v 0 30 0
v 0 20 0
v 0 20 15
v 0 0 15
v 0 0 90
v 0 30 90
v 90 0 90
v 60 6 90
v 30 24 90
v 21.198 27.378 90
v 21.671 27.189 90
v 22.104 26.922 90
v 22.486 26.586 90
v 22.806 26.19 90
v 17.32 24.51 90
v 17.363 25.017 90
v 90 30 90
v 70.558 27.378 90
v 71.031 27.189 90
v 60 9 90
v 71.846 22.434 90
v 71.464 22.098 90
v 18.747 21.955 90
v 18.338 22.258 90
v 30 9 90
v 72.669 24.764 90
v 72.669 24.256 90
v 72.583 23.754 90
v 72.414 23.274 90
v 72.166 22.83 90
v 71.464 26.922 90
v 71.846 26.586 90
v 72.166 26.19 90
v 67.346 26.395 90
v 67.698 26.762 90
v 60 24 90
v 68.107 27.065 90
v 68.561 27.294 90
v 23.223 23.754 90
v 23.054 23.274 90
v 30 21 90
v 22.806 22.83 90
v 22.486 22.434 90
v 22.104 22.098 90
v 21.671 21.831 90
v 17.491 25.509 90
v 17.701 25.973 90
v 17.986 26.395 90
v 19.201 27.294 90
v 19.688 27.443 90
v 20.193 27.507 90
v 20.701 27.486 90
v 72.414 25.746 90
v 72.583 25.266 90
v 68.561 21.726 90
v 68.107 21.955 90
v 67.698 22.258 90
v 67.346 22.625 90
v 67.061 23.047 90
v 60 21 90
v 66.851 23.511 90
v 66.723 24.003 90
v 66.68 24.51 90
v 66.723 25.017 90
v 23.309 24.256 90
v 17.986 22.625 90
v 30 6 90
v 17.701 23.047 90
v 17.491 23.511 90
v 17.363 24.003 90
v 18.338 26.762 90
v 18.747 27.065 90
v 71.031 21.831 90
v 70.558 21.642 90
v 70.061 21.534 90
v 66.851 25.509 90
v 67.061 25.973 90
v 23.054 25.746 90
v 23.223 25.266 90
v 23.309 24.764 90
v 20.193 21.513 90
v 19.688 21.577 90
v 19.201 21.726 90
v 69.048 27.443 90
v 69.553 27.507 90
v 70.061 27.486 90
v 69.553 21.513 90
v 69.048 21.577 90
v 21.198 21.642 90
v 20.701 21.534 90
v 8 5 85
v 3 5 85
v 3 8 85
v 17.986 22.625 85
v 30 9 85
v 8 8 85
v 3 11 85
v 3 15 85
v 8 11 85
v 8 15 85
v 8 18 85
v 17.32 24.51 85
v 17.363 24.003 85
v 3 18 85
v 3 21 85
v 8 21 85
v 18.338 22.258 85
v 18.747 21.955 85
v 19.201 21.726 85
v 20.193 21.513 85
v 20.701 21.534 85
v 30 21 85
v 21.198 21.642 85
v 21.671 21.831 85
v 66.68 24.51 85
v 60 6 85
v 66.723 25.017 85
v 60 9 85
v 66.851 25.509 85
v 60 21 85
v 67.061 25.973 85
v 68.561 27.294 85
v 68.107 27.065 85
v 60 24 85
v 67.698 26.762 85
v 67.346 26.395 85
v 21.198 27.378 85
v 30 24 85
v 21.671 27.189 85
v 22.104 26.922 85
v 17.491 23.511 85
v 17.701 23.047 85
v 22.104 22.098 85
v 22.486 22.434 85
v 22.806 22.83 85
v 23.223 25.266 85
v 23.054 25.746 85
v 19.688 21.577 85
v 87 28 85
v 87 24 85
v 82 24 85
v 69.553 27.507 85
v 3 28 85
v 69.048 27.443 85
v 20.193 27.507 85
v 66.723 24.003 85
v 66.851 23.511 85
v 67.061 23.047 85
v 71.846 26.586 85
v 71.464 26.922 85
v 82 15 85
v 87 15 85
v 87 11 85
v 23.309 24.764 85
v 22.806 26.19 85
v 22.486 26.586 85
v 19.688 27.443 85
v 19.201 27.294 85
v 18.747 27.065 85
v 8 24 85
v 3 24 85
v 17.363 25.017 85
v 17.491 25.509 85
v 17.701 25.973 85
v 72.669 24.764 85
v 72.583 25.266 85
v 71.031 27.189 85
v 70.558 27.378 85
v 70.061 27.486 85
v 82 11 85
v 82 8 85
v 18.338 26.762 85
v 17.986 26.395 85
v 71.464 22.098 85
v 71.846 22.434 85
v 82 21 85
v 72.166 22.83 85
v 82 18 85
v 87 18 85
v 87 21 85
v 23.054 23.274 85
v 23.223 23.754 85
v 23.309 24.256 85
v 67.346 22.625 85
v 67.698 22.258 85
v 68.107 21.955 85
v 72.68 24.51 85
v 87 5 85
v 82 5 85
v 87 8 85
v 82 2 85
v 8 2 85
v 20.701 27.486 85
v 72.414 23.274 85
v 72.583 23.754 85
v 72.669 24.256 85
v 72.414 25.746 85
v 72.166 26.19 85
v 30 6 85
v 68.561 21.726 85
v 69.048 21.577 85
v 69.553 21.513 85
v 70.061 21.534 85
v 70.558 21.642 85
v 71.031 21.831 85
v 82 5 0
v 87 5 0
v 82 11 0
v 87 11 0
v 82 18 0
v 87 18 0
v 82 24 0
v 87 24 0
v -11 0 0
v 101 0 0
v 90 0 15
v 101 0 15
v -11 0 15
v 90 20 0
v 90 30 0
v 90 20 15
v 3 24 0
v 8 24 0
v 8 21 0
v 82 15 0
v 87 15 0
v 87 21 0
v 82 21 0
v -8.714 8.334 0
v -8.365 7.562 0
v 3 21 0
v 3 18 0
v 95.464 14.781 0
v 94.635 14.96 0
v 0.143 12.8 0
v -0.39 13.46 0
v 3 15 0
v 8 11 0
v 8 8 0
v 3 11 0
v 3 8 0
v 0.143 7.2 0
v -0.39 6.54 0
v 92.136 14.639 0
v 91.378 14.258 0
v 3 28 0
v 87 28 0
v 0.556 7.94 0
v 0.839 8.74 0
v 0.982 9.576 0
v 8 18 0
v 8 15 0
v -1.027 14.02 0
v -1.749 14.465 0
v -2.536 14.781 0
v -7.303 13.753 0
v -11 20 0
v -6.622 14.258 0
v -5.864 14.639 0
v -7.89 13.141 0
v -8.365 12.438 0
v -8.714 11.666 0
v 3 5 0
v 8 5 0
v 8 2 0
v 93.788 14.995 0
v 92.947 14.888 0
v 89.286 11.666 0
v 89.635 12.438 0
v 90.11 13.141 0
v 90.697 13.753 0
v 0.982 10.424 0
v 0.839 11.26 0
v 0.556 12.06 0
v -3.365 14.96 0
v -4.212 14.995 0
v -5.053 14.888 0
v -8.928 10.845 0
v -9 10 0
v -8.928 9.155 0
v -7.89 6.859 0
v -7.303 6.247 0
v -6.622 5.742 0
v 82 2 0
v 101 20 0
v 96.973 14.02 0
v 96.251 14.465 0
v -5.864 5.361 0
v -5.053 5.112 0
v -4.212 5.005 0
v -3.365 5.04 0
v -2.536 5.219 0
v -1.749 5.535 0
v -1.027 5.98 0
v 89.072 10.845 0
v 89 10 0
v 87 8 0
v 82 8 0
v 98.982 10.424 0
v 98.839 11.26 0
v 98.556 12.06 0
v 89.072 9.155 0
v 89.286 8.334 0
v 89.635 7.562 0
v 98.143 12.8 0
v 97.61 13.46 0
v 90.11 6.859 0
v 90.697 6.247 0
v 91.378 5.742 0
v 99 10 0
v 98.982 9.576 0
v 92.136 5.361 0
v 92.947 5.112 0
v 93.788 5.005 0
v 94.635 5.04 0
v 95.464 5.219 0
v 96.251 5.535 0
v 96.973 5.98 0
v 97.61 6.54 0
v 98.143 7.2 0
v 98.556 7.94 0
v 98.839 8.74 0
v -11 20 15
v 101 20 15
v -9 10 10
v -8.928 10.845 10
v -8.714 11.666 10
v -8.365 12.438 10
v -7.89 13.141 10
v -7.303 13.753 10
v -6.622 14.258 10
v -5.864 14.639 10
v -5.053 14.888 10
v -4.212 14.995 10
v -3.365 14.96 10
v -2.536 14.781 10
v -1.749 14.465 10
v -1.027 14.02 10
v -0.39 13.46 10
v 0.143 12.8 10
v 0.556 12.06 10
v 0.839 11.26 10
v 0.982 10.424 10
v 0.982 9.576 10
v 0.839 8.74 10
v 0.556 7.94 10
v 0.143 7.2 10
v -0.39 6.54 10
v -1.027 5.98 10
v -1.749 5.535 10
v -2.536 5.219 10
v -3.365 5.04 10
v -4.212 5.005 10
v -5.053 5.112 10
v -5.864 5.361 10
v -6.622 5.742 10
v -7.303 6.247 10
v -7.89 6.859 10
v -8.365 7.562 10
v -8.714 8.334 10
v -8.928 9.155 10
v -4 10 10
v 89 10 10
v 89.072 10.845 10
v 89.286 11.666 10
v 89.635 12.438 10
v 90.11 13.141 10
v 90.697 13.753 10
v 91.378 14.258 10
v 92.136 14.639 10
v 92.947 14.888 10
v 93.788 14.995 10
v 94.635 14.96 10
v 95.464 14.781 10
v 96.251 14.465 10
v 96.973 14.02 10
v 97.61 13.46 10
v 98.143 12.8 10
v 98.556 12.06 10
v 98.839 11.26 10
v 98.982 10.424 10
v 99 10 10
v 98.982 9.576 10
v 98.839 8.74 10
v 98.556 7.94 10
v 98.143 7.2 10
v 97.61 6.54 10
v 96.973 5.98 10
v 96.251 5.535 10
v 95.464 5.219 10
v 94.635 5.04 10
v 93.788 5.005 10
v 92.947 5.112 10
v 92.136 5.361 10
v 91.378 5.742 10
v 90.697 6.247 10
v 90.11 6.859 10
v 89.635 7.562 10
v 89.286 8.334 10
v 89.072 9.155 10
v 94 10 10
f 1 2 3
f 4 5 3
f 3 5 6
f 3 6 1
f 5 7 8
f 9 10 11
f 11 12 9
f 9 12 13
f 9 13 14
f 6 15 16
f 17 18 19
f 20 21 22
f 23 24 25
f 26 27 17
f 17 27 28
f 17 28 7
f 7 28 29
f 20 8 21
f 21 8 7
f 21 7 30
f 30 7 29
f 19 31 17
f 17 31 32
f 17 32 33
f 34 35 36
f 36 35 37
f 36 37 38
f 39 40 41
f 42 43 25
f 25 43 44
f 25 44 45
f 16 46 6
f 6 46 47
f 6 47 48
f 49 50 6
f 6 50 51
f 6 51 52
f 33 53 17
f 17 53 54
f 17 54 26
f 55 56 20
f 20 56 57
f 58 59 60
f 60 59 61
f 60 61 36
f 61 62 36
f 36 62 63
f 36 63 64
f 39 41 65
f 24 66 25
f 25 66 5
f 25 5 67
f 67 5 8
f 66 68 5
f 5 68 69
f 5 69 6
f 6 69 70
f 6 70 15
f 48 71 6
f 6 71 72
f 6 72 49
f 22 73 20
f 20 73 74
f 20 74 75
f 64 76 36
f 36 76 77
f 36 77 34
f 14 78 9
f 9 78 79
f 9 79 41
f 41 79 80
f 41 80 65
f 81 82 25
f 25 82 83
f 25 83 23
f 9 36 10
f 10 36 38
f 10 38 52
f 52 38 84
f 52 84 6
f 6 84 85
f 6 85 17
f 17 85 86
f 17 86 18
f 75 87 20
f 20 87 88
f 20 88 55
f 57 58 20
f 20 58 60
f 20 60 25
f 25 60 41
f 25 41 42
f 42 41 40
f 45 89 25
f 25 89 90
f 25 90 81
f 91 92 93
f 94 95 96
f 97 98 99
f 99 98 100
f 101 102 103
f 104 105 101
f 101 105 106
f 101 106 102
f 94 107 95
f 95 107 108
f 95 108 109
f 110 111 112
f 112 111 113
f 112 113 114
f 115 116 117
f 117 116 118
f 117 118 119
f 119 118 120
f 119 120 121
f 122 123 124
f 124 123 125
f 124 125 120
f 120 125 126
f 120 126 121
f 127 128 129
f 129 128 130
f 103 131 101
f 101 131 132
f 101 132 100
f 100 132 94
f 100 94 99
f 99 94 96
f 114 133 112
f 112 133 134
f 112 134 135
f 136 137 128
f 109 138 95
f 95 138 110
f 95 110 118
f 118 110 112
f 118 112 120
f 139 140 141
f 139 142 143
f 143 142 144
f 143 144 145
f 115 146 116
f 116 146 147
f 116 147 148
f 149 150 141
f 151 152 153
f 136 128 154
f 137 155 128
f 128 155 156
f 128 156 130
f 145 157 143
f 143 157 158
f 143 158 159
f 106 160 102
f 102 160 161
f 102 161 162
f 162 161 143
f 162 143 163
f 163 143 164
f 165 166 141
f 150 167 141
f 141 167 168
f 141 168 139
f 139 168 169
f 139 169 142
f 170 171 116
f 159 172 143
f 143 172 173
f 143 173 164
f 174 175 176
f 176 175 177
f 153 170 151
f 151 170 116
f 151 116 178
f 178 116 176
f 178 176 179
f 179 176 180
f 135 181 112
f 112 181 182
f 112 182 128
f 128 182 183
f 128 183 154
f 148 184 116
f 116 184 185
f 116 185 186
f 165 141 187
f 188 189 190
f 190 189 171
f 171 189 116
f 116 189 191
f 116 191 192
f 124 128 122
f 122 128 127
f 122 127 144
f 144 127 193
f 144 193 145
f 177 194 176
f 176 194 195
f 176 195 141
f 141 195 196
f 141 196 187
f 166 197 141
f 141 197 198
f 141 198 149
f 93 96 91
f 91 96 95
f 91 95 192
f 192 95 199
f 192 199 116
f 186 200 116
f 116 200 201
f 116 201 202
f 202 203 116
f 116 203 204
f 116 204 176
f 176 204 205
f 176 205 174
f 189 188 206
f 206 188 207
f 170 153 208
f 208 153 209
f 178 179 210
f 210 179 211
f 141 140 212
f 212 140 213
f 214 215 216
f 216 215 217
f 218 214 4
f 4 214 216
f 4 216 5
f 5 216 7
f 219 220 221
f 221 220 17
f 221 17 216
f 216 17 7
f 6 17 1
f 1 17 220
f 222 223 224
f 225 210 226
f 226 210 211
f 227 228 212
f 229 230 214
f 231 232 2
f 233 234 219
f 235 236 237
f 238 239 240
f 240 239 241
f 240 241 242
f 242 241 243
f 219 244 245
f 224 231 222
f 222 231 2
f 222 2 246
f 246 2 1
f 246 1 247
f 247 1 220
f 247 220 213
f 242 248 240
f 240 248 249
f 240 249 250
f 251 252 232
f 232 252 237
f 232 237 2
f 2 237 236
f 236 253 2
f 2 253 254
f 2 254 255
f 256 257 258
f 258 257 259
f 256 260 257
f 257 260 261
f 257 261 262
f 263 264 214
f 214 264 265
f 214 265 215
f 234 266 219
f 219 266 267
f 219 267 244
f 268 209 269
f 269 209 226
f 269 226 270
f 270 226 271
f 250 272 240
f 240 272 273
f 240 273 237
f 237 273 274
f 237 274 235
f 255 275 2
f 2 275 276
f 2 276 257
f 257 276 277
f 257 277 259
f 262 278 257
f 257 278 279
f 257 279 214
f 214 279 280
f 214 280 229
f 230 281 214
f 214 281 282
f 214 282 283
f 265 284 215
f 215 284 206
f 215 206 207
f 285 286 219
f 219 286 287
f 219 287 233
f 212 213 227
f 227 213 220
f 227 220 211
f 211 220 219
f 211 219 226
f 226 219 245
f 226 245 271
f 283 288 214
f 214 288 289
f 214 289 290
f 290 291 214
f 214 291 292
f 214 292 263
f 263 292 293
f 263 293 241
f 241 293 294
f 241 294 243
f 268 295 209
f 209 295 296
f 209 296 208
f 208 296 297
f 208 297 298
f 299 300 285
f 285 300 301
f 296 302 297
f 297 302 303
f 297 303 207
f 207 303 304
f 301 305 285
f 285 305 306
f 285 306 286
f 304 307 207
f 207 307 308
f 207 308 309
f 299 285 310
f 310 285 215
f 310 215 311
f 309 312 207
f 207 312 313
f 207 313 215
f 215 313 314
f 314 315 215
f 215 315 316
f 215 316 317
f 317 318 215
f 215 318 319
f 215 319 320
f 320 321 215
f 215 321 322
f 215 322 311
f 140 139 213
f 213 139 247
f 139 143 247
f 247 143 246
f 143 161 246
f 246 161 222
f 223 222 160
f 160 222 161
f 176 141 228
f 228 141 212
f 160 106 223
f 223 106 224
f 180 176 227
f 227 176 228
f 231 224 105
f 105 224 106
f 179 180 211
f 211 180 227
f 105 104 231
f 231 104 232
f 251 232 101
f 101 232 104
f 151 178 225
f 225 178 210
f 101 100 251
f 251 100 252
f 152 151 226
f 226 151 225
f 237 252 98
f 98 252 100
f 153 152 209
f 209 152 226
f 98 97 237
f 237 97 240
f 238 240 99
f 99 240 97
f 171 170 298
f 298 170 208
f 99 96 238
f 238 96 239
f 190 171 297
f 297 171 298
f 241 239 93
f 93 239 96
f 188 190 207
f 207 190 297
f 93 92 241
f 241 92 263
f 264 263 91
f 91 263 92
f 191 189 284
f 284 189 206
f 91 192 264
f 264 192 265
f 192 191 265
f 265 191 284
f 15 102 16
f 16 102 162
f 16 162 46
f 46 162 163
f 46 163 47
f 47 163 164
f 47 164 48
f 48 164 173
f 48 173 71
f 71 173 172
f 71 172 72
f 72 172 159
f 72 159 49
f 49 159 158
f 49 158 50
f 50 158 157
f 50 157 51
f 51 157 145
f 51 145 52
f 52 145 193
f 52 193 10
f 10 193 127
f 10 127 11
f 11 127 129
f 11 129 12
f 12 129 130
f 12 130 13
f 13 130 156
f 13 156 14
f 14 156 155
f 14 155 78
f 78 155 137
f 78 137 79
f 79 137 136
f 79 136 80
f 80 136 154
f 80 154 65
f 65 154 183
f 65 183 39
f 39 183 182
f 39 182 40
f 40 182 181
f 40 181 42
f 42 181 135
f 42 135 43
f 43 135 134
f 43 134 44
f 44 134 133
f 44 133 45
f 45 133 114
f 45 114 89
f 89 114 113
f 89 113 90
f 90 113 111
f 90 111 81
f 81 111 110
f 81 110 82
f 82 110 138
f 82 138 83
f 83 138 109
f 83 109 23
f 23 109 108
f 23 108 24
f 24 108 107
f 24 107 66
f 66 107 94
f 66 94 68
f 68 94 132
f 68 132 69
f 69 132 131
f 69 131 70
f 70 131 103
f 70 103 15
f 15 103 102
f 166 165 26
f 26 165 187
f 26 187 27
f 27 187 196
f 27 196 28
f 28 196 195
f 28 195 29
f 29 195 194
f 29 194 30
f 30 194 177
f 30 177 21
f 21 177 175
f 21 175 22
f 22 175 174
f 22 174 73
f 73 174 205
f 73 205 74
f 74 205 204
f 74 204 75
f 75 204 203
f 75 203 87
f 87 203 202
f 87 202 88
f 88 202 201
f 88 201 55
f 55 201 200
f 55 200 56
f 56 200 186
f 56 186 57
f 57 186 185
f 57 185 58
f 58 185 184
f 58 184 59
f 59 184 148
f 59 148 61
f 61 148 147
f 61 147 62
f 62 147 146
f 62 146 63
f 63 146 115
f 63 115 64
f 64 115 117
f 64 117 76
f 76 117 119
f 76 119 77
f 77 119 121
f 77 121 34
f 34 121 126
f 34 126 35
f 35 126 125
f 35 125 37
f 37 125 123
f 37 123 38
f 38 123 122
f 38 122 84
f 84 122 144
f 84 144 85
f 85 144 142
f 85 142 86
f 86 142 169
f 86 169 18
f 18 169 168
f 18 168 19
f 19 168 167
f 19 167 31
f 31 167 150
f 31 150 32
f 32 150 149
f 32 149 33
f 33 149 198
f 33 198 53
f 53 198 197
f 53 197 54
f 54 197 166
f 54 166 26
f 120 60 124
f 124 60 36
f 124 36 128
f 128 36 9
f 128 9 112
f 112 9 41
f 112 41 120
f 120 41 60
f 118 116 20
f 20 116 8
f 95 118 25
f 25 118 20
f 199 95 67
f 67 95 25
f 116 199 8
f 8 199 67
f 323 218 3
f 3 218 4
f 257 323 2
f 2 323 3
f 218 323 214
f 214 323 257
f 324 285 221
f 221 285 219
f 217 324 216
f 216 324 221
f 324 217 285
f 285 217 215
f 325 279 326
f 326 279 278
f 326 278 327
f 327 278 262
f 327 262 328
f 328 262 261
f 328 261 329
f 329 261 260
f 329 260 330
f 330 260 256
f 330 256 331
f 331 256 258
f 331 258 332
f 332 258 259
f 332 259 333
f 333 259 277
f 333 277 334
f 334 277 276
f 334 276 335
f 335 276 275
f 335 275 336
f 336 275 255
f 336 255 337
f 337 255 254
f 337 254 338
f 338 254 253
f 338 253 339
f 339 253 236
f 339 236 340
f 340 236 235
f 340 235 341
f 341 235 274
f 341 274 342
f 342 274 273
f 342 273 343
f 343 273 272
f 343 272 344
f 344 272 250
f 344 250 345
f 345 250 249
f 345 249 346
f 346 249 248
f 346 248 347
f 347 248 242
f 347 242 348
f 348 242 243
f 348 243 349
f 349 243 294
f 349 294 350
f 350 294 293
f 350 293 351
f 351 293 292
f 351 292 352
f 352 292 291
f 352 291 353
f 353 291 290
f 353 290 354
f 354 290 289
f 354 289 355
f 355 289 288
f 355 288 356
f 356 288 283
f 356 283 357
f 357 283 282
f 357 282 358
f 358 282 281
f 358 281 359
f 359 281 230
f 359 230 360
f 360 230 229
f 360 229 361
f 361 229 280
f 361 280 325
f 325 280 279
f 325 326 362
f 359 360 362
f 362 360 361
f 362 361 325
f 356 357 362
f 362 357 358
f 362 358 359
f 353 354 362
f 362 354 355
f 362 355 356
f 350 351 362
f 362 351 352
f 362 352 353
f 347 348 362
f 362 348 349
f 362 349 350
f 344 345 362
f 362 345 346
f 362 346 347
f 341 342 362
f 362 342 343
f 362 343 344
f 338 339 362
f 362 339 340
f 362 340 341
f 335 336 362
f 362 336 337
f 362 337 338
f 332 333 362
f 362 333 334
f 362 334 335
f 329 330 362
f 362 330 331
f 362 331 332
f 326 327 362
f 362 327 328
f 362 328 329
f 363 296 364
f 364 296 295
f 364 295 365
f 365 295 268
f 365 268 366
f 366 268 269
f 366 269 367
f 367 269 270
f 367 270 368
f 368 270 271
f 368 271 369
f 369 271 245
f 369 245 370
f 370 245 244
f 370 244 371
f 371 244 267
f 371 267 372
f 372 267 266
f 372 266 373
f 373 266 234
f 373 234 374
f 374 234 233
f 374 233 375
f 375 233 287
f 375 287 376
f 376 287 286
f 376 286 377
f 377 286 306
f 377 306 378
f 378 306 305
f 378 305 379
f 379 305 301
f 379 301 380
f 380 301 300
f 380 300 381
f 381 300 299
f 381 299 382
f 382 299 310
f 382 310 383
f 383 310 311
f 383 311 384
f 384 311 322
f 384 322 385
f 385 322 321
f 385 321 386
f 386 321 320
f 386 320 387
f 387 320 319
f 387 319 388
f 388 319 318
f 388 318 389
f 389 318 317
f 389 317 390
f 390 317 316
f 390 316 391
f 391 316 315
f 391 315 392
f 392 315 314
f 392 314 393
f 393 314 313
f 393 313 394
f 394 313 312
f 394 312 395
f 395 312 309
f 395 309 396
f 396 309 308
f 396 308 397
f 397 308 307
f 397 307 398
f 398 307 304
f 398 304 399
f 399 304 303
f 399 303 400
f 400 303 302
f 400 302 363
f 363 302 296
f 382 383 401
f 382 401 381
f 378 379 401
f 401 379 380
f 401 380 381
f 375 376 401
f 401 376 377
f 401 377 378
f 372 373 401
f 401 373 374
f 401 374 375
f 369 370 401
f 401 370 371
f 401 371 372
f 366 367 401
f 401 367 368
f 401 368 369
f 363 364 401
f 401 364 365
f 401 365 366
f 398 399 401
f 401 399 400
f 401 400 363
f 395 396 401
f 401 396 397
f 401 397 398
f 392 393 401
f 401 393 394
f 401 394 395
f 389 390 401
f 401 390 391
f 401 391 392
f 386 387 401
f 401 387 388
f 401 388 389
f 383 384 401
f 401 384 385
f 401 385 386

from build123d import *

# Parameters (mm, degrees)
SKETCH1_W           = 90
SKETCH1_H           = 30
BOSS_EXTRUDE1_DEPTH = 90
SKETCH2_W           = 84
SKETCH2_H           = 4
CUT_EXTRUDE1_DEPTH  = 85
SKETCH3_W           = 74
SKETCH3_H           = 3
CUT_EXTRUDE2_DEPTH  = 85
SKETCH4_W           = 84
SKETCH4_H           = 3
CUT_EXTRUDE3_DEPTH  = 85
SKETCH5_W           = 74
SKETCH5_H           = 3
CUT_EXTRUDE4_DEPTH  = 85
SKETCH7_W           = 84
SKETCH7_H           = 4
CUT_EXTRUDE5_DEPTH  = 85
SKETCH8_W           = 74
SKETCH8_H           = 3
CUT_EXTRUDE6_DEPTH  = 85
SKETCH9_W           = 84
SKETCH9_H           = 3
CUT_EXTRUDE7_DEPTH  = 85
SKETCH10_W          = 74
SKETCH10_H          = 3
CUT_EXTRUDE8_DEPTH  = 85
SKETCH11_R          = 3
CUT_EXTRUDE9_DEPTH  = 85
SKETCH12_W          = 30
SKETCH12_H          = 3
CUT_EXTRUDE10_DEPTH = 85
SKETCH13_W          = 15
SKETCH13_H          = 20
BOSS_EXTRUDE2_DEPTH = 11
SKETCH14_R          = 5
CUT_EXTRUDE11_DEPTH = 10


with BuildPart() as part:
    # Sketch1 → Boss-Extrude1 (new body)
    with BuildSketch(Plane.XY):
        with Locations((45, 15)):
            Rectangle(SKETCH1_W, SKETCH1_H)
    extrude(amount=BOSS_EXTRUDE1_DEPTH)

    # Sketch2 → Cut-Extrude1 (cut)
    with BuildSketch(Plane(origin=(0, 0, 0), x_dir=(-1, 0, 0), z_dir=(0, 0, -1))):
        with Locations((-45, 26)):
            Rectangle(SKETCH2_W, SKETCH2_H)
    extrude(amount=-CUT_EXTRUDE1_DEPTH, mode=Mode.SUBTRACT)

    # Sketch3 → Cut-Extrude2 (cut)
    with BuildSketch(Plane(origin=(0, 0, 0), x_dir=(-1, 0, 0), z_dir=(0, 0, -1))):
        with Locations((-45, 22.5)):
            Rectangle(SKETCH3_W, SKETCH3_H)
    extrude(amount=-CUT_EXTRUDE2_DEPTH, mode=Mode.SUBTRACT)

    # Sketch4 → Cut-Extrude3 (cut)
    with BuildSketch(Plane(origin=(0, 0, 0), x_dir=(-1, 0, 0), z_dir=(0, 0, -1))):
        with Locations((-45, 19.5)):
            Rectangle(SKETCH4_W, SKETCH4_H)
    extrude(amount=-CUT_EXTRUDE3_DEPTH, mode=Mode.SUBTRACT)

    # Sketch5 → Cut-Extrude4 (cut)
    with BuildSketch(Plane(origin=(0, 0, 0), x_dir=(-1, 0, 0), z_dir=(0, 0, -1))):
        with Locations((-45, 16.5)):
            Rectangle(SKETCH5_W, SKETCH5_H)
    extrude(amount=-CUT_EXTRUDE4_DEPTH, mode=Mode.SUBTRACT)

    # Sketch7 → Cut-Extrude5 (cut)
    with BuildSketch(Plane(origin=(0, 0, 0), x_dir=(-1, 0, 0), z_dir=(0, 0, -1))):
        with Locations((-45, 13)):
            Rectangle(SKETCH7_W, SKETCH7_H)
    extrude(amount=-CUT_EXTRUDE5_DEPTH, mode=Mode.SUBTRACT)

    # Sketch8 → Cut-Extrude6 (cut)
    with BuildSketch(Plane(origin=(0, 0, 0), x_dir=(-1, 0, 0), z_dir=(0, 0, -1))):
        with Locations((-45, 9.5)):
            Rectangle(SKETCH8_W, SKETCH8_H)
    extrude(amount=-CUT_EXTRUDE6_DEPTH, mode=Mode.SUBTRACT)

    # Sketch9 → Cut-Extrude7 (cut)
    with BuildSketch(Plane(origin=(0, 0, 0), x_dir=(-1, 0, 0), z_dir=(0, 0, -1))):
        with Locations((-45, 6.5)):
            Rectangle(SKETCH9_W, SKETCH9_H)
    extrude(amount=-CUT_EXTRUDE7_DEPTH, mode=Mode.SUBTRACT)

    # Sketch10 → Cut-Extrude8 (cut)
    with BuildSketch(Plane(origin=(0, 0, 0), x_dir=(-1, 0, 0), z_dir=(0, 0, -1))):
        with Locations((-45, 3.5)):
            Rectangle(SKETCH10_W, SKETCH10_H)
    extrude(amount=-CUT_EXTRUDE8_DEPTH, mode=Mode.SUBTRACT)

    # Sketch11 → Cut-Extrude9 (cut)
    with BuildSketch(Plane(origin=(0, 0, 85), x_dir=(-1, 0, 0), z_dir=(0, 0, -1))):
        with Locations((-20.32, 24.51)):
            Circle(SKETCH11_R)
    cut_extrude9 = extrude(amount=-CUT_EXTRUDE9_DEPTH, mode=Mode.SUBTRACT)

    # Mirror1: Cut-Extrude9 across plane
    add(cut_extrude9.mirror(Plane.ZY.offset(-45)), mode=Mode.SUBTRACT)

    # Sketch12 → Cut-Extrude10 (cut)
    with BuildSketch(Plane(origin=(0, 0, 85), x_dir=(-1, 0, 0), z_dir=(0, 0, -1))):
        with Locations((-45, 22.5)):
            Rectangle(SKETCH12_W, SKETCH12_H)
    cut_extrude10 = extrude(amount=-CUT_EXTRUDE10_DEPTH, mode=Mode.SUBTRACT)

    # Mirror2: Cut-Extrude10 across plane
    add(cut_extrude10.mirror(Plane.ZX.offset(15)), mode=Mode.SUBTRACT)

    # Sketch13 → Boss-Extrude2 (add)
    with BuildSketch(Plane.ZY):
        with Locations((7.5, 10)):
            Rectangle(SKETCH13_W, SKETCH13_H)
    boss_extrude2 = extrude(amount=BOSS_EXTRUDE2_DEPTH)

    # Mirror3: Boss-Extrude2 across plane
    add(boss_extrude2.mirror(Plane.ZY.offset(-45)))

    # Sketch14 → Cut-Extrude11 (cut)
    with BuildSketch(Plane(origin=(0, 0, 0), x_dir=(-1, 0, 0), z_dir=(0, 0, -1))):
        with Locations((4, 10)):
            Circle(SKETCH14_R)
    cut_extrude11 = extrude(amount=-CUT_EXTRUDE11_DEPTH, mode=Mode.SUBTRACT)

    # Mirror4: Cut-Extrude11 across plane
    add(cut_extrude11.mirror(Plane.ZY.offset(-45)), mode=Mode.SUBTRACT)


solid = part.part
